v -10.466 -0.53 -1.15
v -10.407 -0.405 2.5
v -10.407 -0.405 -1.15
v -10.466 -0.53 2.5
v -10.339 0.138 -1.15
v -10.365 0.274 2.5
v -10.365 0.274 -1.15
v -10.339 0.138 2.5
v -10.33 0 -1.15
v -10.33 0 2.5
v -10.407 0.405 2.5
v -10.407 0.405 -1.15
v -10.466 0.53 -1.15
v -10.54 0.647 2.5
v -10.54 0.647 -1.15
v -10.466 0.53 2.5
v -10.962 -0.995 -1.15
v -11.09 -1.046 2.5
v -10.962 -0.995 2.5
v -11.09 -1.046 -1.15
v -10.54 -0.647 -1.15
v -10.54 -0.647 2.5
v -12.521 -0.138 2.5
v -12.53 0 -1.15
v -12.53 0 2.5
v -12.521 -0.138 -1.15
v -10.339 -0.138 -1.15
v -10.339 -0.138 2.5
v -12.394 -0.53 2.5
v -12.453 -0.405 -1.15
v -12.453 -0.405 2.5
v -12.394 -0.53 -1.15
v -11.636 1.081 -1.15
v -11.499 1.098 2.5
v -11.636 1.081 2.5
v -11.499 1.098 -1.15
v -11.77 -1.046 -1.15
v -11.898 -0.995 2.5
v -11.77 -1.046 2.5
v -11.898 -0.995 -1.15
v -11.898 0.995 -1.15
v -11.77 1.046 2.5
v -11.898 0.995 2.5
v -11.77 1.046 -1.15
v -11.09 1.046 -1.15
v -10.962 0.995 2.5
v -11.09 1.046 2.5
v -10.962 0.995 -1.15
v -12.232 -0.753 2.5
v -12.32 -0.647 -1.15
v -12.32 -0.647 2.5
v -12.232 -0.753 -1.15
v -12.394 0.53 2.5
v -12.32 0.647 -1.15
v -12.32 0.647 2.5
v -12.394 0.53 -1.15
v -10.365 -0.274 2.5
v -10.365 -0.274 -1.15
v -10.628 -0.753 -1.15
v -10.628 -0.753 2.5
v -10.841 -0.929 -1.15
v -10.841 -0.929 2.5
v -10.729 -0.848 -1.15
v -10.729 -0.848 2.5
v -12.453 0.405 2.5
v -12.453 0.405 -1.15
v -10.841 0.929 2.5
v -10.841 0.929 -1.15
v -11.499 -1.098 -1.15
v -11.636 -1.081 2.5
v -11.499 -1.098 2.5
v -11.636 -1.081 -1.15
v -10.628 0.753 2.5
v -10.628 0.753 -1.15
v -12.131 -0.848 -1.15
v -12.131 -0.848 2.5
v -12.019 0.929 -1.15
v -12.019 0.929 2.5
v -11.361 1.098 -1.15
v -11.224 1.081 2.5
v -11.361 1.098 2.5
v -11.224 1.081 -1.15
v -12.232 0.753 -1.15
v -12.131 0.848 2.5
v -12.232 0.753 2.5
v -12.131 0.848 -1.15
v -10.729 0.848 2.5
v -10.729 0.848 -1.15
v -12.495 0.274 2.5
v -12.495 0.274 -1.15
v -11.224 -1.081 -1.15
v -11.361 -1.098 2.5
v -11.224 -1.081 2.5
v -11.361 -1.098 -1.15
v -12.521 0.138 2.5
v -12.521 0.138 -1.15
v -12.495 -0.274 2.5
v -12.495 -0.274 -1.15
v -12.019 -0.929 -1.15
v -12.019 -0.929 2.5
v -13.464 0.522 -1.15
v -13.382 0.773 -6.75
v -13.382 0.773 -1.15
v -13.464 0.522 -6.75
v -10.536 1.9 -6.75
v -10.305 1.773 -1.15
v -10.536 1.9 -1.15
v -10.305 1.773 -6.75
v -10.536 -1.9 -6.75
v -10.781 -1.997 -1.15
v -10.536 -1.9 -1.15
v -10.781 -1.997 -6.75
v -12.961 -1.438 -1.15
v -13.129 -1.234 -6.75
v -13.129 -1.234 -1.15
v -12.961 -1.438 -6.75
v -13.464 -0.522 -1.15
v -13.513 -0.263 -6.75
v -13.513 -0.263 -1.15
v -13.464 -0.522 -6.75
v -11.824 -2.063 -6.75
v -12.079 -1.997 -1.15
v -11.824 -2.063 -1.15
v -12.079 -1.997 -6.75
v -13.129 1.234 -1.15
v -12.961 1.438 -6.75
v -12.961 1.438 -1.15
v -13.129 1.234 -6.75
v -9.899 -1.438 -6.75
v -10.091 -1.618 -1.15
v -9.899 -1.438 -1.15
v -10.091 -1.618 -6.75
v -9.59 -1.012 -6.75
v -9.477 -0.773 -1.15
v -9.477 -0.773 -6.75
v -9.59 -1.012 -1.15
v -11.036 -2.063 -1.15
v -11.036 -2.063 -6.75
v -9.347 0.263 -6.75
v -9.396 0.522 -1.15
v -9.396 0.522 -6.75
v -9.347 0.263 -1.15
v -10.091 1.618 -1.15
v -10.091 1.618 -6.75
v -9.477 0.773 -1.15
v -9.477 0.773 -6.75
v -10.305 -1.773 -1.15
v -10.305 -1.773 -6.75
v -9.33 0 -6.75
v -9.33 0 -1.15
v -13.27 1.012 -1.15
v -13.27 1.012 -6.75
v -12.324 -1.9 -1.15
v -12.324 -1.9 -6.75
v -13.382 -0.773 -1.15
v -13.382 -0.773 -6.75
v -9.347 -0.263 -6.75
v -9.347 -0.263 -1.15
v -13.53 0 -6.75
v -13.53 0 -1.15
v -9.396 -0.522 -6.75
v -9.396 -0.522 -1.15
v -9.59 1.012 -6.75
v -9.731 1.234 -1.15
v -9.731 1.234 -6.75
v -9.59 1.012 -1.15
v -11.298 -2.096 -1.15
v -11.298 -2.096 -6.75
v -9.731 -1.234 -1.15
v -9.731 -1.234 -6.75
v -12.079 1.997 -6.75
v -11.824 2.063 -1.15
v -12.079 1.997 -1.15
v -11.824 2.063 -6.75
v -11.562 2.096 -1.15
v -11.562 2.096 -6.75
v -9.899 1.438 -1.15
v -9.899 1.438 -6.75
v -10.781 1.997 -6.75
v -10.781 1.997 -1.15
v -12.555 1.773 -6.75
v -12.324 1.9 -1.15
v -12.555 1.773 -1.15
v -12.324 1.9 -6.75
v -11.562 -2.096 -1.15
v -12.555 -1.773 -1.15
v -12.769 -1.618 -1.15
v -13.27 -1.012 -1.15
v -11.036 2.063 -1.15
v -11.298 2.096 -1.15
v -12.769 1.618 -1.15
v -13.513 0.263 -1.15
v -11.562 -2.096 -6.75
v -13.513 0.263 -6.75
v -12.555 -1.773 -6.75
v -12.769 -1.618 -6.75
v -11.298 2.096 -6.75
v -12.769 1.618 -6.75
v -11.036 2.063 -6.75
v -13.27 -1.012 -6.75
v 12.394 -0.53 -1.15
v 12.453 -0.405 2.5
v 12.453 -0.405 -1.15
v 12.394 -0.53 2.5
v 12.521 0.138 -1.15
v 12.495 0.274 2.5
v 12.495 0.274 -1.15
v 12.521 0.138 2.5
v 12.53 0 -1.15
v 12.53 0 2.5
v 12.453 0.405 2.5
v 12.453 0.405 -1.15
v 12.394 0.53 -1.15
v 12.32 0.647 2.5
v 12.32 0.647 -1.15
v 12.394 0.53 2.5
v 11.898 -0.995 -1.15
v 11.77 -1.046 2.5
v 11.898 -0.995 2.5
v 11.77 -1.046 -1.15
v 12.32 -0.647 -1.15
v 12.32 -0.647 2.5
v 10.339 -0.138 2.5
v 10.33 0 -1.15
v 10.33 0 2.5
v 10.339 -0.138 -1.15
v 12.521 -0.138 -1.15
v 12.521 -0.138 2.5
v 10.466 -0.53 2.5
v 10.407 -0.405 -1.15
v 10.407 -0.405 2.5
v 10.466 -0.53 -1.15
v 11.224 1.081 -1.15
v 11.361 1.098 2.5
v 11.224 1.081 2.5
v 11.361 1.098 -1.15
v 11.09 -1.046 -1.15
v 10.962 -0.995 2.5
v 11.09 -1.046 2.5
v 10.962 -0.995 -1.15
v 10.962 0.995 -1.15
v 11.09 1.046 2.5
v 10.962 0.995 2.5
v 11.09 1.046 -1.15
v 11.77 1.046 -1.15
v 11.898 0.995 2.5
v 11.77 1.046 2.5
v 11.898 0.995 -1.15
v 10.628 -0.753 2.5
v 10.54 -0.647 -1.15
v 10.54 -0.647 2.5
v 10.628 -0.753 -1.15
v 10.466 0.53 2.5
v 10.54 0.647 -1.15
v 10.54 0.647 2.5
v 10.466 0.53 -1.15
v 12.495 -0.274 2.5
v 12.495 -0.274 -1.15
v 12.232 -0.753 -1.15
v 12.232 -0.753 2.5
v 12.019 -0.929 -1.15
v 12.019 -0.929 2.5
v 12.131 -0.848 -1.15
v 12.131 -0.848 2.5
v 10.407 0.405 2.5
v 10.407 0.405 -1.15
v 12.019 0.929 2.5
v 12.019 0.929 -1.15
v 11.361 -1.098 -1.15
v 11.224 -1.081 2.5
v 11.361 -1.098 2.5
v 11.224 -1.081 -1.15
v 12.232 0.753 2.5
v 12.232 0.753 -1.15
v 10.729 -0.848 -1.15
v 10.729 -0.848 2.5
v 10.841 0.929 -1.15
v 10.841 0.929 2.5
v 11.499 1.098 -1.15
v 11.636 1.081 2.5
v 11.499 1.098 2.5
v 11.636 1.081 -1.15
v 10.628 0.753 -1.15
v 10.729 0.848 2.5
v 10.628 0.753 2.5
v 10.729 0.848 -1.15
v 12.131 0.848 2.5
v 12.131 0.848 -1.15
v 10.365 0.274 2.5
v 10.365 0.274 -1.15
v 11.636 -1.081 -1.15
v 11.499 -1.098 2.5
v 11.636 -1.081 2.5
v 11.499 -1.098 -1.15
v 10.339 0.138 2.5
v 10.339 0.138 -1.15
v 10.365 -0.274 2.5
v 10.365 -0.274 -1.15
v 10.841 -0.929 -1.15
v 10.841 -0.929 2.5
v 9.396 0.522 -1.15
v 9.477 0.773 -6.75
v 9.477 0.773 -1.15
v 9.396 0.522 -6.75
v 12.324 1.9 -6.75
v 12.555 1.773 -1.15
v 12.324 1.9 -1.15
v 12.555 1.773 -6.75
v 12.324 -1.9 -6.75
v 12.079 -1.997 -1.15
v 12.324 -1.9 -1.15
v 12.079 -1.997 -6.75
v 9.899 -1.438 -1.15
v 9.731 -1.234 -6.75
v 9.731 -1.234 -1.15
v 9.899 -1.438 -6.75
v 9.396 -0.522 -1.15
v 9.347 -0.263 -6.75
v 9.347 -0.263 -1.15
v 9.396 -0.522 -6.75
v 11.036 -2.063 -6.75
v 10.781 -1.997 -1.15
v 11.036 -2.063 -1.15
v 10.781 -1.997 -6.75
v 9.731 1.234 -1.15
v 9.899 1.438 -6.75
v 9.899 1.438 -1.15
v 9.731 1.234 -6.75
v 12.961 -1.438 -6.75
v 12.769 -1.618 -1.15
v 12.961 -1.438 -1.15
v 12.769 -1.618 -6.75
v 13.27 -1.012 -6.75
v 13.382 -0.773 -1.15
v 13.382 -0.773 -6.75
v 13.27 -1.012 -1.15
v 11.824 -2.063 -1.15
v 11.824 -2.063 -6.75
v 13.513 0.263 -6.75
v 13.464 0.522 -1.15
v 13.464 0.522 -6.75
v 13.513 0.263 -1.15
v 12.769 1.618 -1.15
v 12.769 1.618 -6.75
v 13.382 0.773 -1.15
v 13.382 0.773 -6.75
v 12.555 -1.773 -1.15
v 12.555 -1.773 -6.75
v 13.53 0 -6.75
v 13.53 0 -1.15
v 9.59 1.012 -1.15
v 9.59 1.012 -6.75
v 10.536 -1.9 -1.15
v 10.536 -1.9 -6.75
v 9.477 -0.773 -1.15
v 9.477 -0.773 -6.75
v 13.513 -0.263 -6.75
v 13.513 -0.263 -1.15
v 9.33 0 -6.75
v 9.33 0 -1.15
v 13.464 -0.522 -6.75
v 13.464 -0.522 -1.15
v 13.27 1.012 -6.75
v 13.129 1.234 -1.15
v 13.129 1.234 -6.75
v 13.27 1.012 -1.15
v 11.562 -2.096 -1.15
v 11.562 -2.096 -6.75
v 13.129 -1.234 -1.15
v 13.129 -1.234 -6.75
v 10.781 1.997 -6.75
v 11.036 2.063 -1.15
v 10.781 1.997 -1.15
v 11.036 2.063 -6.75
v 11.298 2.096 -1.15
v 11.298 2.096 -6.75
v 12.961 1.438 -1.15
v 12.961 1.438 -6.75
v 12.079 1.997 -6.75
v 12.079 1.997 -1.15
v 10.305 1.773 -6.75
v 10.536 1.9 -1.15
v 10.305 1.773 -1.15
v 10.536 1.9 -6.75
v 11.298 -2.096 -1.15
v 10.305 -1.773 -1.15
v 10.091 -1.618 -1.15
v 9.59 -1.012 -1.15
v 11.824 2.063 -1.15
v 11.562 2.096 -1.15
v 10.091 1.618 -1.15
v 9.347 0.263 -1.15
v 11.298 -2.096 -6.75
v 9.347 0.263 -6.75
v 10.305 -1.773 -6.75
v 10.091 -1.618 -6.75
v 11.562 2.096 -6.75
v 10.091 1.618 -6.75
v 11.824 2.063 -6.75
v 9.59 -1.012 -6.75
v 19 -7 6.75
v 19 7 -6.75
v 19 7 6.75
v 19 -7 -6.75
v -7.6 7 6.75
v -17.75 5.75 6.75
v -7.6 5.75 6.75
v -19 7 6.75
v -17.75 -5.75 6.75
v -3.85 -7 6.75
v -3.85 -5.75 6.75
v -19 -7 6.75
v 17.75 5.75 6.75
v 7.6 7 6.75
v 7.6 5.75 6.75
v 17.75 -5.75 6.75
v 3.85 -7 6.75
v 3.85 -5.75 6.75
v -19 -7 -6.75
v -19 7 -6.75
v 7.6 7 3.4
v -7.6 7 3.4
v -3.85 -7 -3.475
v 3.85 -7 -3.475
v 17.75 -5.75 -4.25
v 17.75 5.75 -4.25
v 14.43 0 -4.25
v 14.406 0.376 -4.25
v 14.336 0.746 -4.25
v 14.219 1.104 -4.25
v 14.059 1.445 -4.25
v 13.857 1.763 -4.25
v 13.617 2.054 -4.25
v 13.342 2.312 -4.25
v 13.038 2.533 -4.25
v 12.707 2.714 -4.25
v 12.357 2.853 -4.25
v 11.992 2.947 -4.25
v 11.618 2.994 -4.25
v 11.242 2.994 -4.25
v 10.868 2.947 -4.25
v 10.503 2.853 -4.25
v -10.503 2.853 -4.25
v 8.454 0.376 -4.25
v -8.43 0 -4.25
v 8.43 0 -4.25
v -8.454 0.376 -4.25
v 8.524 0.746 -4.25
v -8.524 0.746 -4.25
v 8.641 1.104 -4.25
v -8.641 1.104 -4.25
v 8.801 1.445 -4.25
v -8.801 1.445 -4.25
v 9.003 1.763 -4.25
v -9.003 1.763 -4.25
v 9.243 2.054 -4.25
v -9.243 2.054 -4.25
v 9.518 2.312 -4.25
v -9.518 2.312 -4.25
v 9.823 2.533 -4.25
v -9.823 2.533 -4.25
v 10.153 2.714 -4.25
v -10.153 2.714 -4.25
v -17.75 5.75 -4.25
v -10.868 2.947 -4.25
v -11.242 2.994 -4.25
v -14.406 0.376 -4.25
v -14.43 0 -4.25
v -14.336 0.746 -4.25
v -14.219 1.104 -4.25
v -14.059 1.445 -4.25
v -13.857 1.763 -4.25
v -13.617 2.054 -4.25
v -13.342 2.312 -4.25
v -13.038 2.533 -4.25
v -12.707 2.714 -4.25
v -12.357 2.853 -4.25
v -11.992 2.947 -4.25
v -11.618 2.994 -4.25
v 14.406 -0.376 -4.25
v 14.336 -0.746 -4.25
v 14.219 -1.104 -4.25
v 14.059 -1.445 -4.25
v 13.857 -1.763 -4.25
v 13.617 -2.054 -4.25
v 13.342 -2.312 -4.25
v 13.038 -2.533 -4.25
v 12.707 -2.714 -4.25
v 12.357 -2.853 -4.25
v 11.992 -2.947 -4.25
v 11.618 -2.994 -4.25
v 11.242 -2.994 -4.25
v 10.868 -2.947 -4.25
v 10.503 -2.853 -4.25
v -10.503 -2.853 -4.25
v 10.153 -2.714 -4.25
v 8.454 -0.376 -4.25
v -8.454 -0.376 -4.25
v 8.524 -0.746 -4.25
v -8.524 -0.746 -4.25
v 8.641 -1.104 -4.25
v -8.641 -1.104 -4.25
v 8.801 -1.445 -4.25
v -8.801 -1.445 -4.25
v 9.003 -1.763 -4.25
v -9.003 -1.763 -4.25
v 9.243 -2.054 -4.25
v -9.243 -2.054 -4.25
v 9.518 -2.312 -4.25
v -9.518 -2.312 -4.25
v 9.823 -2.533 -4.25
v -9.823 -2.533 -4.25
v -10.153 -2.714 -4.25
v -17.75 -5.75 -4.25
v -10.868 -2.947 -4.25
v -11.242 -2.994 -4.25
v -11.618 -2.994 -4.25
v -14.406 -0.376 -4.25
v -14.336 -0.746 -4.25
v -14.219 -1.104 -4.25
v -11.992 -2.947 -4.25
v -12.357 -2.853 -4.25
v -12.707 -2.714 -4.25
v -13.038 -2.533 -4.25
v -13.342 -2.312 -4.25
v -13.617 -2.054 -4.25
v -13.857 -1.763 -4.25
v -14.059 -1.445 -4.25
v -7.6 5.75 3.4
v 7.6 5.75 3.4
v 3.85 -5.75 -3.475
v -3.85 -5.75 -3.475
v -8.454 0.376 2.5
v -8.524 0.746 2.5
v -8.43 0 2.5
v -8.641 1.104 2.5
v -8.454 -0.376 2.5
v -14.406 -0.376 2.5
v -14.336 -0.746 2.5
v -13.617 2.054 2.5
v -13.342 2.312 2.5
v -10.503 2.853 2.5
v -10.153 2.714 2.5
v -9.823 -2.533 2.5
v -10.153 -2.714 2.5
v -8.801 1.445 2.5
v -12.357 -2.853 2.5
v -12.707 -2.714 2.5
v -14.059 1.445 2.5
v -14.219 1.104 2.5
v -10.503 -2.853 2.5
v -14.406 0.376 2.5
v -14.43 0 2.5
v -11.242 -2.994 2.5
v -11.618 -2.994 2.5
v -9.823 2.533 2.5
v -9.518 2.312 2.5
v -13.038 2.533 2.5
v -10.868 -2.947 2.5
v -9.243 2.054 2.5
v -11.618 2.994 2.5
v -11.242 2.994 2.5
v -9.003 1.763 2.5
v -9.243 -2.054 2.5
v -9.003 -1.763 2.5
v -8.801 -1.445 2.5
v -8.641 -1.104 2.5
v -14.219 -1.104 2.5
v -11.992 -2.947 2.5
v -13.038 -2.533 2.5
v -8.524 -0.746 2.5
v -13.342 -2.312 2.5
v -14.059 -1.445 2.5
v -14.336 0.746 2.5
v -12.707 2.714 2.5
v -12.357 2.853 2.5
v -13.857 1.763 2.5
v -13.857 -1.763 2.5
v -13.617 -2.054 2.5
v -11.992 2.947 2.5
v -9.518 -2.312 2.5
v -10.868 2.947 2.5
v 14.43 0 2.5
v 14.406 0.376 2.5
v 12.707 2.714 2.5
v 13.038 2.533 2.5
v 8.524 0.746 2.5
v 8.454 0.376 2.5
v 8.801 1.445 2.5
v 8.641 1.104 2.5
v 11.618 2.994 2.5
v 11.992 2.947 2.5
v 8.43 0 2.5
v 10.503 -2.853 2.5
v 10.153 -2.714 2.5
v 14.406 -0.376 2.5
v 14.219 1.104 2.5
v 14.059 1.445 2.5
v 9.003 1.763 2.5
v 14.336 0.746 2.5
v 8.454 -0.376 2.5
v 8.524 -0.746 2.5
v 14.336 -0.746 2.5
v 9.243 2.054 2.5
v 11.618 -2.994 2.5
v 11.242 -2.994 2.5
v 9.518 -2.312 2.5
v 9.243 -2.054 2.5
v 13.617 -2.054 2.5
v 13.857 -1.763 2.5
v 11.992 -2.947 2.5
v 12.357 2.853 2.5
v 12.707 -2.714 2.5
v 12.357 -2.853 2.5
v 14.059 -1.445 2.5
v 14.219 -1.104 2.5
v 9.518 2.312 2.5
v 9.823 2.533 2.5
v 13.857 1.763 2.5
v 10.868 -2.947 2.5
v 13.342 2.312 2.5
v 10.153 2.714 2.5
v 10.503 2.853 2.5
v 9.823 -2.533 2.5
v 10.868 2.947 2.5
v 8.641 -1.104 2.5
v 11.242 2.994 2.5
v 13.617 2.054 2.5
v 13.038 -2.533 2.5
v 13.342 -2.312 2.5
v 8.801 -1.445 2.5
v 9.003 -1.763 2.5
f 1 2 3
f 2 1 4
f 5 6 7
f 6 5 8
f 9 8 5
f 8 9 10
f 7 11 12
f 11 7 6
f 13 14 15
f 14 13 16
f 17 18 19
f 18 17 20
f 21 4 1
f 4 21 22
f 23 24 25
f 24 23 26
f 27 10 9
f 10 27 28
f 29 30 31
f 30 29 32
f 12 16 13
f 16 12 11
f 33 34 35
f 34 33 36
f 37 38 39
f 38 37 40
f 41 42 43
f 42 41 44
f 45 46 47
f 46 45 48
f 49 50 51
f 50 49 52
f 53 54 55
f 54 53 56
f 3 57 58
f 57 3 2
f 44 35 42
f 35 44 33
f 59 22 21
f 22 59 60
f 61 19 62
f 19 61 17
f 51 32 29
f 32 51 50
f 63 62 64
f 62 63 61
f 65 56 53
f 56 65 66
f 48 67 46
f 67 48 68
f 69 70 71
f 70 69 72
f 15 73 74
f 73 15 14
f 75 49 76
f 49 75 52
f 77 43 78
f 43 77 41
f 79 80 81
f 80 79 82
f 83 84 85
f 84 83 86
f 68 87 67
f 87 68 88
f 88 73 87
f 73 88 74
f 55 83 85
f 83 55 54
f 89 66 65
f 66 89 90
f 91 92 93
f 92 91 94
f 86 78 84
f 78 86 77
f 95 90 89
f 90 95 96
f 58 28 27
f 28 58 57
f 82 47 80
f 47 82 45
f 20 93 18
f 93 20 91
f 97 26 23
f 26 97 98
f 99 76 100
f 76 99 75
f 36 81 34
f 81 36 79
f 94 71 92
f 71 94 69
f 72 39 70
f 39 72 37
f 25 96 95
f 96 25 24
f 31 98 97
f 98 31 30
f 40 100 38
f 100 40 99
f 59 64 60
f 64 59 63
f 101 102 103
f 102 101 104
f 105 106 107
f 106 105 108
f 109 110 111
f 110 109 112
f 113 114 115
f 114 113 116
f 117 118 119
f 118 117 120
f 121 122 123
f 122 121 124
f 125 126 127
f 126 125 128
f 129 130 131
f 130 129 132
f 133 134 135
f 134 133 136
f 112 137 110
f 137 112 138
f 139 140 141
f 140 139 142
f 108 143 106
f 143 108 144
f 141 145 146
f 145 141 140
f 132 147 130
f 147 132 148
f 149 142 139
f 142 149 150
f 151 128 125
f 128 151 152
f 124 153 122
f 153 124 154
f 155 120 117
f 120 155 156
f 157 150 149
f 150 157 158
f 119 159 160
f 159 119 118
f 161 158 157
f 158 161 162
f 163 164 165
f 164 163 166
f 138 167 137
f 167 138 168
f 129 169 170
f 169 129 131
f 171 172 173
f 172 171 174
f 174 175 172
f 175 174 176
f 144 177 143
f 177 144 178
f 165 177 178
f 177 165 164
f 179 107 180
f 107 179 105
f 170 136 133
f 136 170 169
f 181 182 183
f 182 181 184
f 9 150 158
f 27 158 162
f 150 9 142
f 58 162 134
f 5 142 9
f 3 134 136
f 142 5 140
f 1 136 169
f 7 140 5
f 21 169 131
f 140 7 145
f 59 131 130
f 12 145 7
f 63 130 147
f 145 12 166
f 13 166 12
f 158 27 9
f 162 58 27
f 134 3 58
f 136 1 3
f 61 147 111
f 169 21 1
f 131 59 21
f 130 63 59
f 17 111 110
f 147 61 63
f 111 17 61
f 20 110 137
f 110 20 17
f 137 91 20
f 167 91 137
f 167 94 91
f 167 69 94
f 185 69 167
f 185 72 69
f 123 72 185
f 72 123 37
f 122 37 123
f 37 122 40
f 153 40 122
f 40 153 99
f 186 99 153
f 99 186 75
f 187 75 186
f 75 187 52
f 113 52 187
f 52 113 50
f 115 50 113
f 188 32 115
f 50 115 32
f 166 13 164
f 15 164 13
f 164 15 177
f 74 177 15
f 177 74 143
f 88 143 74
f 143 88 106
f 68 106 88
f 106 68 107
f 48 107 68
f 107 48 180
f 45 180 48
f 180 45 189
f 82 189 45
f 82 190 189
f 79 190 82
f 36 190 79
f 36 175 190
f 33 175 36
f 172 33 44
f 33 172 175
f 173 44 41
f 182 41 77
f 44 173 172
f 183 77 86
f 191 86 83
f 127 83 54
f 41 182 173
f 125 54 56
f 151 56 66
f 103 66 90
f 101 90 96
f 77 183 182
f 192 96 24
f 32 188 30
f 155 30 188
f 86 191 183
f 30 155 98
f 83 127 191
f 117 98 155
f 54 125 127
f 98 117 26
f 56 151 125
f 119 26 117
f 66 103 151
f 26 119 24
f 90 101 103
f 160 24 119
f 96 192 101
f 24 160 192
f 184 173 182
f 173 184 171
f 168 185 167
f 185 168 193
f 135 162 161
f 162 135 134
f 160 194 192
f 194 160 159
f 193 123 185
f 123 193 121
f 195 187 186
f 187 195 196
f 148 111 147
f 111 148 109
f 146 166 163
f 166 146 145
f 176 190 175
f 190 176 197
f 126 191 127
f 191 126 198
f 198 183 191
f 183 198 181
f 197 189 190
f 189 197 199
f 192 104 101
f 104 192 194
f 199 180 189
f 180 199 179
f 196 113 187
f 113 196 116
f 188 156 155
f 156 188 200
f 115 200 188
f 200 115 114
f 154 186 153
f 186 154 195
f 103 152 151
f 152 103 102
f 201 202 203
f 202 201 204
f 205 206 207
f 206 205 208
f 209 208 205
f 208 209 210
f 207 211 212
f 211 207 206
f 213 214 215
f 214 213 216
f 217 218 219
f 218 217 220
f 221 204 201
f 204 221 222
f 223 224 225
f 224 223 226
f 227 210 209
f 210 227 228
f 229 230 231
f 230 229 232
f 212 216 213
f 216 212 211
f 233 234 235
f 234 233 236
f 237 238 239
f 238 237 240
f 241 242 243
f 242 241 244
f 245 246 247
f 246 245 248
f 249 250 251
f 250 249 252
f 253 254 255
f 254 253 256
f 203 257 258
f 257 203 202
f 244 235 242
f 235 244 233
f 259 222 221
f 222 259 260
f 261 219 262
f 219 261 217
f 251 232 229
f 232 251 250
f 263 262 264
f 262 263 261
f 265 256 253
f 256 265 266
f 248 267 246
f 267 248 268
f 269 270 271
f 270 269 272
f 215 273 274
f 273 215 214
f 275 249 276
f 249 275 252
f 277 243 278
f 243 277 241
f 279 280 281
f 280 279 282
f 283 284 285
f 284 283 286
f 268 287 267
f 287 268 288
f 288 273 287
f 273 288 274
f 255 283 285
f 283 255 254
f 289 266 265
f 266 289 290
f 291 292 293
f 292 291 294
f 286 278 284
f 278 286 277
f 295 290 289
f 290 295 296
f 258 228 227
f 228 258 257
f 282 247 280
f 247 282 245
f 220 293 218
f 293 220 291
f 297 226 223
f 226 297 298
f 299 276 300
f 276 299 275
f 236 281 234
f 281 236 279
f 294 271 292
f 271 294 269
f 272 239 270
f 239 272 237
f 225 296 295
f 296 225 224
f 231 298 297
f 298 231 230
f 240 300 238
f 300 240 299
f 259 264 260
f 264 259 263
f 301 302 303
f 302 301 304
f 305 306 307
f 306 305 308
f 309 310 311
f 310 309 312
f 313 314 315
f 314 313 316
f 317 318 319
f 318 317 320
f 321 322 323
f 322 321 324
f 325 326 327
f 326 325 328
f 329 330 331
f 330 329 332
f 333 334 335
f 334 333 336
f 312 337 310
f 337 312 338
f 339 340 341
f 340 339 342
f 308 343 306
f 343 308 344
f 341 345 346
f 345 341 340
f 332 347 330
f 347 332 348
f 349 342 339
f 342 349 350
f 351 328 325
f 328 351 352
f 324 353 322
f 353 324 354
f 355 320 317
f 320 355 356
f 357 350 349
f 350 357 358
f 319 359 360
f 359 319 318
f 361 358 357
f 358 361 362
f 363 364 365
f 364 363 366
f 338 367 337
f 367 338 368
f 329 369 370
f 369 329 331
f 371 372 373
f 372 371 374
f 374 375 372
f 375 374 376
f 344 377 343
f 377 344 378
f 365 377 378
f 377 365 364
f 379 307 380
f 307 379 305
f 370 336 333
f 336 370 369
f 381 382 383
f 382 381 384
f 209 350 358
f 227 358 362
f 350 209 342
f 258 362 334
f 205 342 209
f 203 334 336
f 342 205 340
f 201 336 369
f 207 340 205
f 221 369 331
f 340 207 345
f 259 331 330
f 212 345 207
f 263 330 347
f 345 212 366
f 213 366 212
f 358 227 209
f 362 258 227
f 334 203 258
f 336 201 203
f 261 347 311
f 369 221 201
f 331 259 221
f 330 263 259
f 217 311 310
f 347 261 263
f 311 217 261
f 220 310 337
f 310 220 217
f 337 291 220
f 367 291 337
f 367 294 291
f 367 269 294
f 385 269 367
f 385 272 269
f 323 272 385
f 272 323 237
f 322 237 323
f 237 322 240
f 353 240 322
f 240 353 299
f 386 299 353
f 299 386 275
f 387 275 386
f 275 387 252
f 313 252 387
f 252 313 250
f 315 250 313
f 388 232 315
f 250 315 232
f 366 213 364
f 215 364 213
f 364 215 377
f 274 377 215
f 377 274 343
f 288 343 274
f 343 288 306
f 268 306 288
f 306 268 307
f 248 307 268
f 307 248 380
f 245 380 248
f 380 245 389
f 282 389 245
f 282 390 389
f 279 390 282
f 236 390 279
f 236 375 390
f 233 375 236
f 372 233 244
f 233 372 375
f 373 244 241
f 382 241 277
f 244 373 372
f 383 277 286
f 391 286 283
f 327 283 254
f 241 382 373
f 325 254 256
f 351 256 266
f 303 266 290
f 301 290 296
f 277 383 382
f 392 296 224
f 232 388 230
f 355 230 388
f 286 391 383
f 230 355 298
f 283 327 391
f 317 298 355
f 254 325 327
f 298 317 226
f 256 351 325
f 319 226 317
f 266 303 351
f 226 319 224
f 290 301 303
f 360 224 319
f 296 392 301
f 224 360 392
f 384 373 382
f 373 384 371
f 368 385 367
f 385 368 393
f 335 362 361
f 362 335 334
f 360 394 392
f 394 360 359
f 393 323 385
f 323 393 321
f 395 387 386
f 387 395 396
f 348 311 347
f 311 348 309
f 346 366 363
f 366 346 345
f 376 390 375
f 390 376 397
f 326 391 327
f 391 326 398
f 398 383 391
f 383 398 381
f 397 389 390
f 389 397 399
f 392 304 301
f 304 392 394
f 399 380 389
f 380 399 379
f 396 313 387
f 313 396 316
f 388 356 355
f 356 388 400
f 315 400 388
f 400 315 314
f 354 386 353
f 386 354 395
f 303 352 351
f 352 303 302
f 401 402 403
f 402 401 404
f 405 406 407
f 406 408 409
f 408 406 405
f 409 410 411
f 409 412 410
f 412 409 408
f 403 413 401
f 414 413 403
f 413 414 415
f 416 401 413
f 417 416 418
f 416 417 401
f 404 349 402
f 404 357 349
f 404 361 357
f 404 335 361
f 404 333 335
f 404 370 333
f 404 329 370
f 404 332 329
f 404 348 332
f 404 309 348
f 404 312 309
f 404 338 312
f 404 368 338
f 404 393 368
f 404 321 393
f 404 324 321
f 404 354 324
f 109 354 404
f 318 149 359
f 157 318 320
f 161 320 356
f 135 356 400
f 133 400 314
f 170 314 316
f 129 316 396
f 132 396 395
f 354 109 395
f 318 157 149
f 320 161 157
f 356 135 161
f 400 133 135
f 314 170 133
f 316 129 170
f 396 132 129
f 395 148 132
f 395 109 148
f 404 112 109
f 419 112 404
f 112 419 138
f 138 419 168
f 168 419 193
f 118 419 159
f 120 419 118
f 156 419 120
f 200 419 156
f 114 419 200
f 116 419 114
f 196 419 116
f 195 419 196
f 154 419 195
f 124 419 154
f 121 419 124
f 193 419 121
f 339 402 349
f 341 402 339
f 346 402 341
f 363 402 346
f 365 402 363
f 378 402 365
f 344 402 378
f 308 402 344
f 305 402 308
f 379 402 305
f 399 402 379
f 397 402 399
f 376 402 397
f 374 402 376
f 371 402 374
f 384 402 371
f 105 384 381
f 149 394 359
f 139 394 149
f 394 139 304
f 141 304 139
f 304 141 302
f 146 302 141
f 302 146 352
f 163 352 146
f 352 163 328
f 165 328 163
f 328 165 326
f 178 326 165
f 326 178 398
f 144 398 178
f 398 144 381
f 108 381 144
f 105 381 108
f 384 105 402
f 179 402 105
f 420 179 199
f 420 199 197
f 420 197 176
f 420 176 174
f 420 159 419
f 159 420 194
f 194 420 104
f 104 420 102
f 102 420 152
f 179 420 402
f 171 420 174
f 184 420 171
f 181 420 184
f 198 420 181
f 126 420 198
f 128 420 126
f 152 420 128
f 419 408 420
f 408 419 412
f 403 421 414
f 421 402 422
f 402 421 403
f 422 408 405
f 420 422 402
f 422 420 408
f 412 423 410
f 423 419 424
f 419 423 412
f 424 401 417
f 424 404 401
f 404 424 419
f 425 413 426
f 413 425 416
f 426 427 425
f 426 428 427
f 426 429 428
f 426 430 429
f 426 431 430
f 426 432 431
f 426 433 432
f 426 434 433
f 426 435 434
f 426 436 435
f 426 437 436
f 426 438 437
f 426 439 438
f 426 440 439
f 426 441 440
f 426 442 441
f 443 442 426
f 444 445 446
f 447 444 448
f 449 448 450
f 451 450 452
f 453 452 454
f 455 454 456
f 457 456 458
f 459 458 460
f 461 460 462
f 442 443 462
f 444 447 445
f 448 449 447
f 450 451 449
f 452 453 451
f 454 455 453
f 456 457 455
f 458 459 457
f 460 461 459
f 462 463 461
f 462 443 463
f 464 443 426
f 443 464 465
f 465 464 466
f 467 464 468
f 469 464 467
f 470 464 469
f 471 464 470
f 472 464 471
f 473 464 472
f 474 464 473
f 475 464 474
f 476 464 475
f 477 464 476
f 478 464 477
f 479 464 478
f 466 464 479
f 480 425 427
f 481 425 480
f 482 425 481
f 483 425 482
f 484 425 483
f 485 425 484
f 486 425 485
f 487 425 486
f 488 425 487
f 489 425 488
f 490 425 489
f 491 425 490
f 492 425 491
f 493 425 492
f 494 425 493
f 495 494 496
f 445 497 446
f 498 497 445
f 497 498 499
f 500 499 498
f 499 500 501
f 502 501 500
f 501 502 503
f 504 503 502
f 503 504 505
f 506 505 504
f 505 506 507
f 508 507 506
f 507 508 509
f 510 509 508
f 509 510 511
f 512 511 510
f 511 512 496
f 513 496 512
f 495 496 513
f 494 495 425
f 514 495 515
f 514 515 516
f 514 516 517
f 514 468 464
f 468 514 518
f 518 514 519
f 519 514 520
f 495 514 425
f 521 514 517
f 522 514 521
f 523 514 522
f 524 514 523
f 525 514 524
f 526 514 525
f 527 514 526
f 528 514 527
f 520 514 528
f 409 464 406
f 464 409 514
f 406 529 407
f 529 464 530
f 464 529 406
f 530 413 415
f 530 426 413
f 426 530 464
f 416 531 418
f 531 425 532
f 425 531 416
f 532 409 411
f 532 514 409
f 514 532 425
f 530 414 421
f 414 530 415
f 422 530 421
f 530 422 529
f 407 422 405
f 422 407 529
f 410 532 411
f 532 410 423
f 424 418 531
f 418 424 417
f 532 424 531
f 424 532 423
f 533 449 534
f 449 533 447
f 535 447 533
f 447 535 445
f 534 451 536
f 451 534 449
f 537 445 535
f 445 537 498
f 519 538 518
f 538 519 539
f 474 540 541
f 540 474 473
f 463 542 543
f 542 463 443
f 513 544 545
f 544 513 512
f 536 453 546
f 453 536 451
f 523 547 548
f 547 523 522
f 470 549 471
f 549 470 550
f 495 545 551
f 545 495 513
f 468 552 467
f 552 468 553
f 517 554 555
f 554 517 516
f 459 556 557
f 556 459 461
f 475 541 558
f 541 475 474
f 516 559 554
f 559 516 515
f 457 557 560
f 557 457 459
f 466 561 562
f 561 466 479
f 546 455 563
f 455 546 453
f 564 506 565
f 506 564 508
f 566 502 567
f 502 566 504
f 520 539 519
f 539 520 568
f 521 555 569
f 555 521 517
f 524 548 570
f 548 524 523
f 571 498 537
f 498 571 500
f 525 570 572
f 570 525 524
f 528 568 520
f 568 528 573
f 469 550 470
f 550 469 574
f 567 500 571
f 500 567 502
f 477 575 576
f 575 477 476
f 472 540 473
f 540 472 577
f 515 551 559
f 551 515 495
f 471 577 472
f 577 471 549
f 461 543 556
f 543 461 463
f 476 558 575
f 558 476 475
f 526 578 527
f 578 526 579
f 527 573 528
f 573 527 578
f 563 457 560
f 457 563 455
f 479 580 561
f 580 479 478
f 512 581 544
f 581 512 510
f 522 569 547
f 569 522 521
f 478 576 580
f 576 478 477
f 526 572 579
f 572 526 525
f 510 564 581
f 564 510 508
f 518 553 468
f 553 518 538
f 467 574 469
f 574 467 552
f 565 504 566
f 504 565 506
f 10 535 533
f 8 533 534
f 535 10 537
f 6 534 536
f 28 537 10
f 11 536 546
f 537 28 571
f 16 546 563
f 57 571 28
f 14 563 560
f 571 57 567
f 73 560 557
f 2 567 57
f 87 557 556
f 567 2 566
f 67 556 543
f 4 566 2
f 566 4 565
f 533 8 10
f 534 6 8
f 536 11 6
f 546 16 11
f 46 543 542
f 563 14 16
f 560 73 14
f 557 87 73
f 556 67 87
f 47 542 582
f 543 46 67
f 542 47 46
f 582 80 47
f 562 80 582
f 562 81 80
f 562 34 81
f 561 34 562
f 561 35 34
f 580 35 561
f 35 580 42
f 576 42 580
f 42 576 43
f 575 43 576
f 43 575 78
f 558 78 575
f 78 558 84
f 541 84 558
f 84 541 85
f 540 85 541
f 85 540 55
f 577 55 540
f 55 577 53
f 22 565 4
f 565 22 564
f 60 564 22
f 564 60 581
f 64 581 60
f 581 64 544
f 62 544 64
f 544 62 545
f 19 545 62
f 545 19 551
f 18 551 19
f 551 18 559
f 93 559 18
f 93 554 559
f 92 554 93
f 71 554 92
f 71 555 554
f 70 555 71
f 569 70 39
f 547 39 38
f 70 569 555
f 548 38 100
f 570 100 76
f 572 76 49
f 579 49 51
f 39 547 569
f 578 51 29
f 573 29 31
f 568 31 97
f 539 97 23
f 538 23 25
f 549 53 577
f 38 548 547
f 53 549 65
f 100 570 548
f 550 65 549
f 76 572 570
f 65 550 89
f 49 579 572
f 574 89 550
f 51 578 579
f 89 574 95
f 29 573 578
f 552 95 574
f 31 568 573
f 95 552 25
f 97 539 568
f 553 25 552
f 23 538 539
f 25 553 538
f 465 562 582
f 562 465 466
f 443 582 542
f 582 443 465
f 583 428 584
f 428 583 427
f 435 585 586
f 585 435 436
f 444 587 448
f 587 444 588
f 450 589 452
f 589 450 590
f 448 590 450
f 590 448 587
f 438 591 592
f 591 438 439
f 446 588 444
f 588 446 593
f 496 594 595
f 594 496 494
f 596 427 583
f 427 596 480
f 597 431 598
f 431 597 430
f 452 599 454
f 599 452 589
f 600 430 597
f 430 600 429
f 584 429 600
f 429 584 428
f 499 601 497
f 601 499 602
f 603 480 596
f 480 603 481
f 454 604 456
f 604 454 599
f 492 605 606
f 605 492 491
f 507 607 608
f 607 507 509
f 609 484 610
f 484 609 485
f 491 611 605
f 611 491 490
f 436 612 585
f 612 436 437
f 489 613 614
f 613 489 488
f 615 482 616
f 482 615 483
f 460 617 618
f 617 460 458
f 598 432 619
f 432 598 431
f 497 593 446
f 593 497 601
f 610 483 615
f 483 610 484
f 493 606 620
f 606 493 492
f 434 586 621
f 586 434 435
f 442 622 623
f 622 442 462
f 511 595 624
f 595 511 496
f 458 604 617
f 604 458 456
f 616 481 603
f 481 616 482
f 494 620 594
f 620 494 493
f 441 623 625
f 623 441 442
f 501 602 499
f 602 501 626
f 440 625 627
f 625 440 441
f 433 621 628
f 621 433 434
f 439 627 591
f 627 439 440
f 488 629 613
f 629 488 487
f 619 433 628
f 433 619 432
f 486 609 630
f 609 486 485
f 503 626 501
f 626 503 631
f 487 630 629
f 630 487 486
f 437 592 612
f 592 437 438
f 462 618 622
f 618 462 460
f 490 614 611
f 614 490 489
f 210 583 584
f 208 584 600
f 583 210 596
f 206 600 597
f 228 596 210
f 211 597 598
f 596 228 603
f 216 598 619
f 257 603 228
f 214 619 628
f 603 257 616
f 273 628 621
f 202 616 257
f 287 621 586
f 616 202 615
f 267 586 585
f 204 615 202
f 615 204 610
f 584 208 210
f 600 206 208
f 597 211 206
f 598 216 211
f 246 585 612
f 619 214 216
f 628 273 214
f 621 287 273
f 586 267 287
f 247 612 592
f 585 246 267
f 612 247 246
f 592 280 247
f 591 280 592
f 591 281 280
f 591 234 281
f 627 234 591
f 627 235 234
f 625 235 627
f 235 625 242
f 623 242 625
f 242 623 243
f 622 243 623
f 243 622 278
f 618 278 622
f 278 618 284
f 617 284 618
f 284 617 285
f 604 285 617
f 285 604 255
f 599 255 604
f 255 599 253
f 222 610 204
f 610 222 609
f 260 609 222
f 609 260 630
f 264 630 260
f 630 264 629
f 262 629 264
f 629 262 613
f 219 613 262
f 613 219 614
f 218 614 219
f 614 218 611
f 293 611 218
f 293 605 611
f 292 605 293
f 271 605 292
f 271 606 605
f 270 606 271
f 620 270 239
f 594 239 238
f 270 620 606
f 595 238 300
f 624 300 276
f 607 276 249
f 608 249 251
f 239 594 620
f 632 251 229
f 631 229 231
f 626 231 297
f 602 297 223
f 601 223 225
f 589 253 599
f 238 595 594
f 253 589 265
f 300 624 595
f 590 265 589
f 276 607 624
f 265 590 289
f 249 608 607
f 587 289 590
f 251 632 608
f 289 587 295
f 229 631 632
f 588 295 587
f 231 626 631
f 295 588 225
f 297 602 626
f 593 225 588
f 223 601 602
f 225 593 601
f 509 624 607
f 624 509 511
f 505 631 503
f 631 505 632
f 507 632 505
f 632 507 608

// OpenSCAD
// file: ../lib/nuts_and_screws.scad
//
// This file is part of the hexapod-robi distribution (https://github.com/schwicke/hexapod-robi).
// Copyright (c) 2021 Ulrich Schwickerath
//
// This program is free software: you can redistribute it and/or modify
// it under the terms of the GNU General Public License as published by
// the Free Software Foundation, version 3.
//
// This program is distributed in the hope that it will be useful, but
// WITHOUT ANY WARRANTY; without even the implied warranty of
// MERCHANTABILITY or FITNESS FOR A PARTICULAR PURPOSE. See the GNU
// General Public License for more details.
//
// You should have received a copy of the GNU General Public License
// along with this program. If not, see <http://www.gnu.org/licenses/>.
//
// This is a little plastic bit which is intended to get the holes for the connectors
// at the right position. It's not part of the robot itself, but useful for building it.
//
// m3s nuts dimensions
m3s_screwdim = 3; // m3 screws
m3s_delta = 0.2;
m3s_nut_width = 5.4+m3s_delta;
m3s_nut_hight = 2.4+m3s_delta;

module screwhole_mX_basic(d, height, fact){
     headlength = 0.6*d/2+0.1;
     translate([0, 0, headlength/2]){
          translate([0, 0, height/2])cylinder(h=height, r=d/2+0.1, center=true, $fn=50);
          cylinder(h=10*fact*headlength, r=d+0.1, center=true, $fn=50);
     }
}

module screwhole_mX(d, height, fact){
     headlength = 0.6*d/2+0.1;
     translate([0, 2, 0]){
          rotate([90, 0, 0]){
               translate([0, 0, headlength/2]){
                    translate([0, 0, height/2])cylinder(h=height, r=d/2+0.1, center=true, $fn=50);
                    cylinder(h=10*fact*headlength, r=d+0.1, center=true, $fn=50);
               }
          }
     }
}

module nuthole_mX(d){
     s = (d==2) ? 4: (d==2.5)? 5: (d==3) ? 5.5: 0.0;
     if (s==0){
          echo ("Nut size not supported");
     }
     e = s/sin(60.0);
     height = 40;
     headlength = 0.6*d/2+0.1;
     translate([0, 0, -5*headlength]){
          translate([0, 0, height/2])cylinder(h=height, r=d/2+0.1, center=true, $fn=50);
          cylinder(h=10*headlength, d=e+0.1, center=true, $fn=6);
     }
}

module my_screwhole_mX(d){
     translate([0, 0, thickness])rotate([180, 0, 0])screwhole_mX_basic(d, 40, 1);
}
// file: ../lib/globals.scad
//
// This file is part of the hexapod-robi distribution (https://github.com/schwicke/hexapod-robi).
// Copyright (c) 2021 Ulrich Schwickerath
//
// This program is free software: you can redistribute it and/or modify
// it under the terms of the GNU General Public License as published by
// the Free Software Foundation, version 3.
//
// This program is distributed in the hope that it will be useful, but
// WITHOUT ANY WARRANTY; without even the implied warranty of
// MERCHANTABILITY or FITNESS FOR A PARTICULAR PURPOSE. See the GNU
// General Public License for more details.
//
// You should have received a copy of the GNU General Public License
// along with this program. If not, see <http://www.gnu.org/licenses/>.
//
// This is a little plastic bit which is intended to get the holes for the connectors
// at the right position. It's not part of the robot itself, but useful for building it.
//
//
// all distances are in mm
//

// Define some globals used at various places
raster=2.54;

// motor height
space = 42.0;

// wall thickness
thickness = 4;

// battery box
batt_thickness = 3;
batt_x = 50;
batt_y = 160;
batt_z = 25;

// binder distance
binder_dist = 3.5;

// mount position base
base_mount_pos_x = batt_x/2+2*batt_thickness+1.5;

// dimensions for hubs for motor cabling
hub_hole_diameter = 2;
hub_spacer_height = 2;
hub_x = 4.9;
hub_y = 9.9;

module anchorbox(size){
     cube([40, 30, size],center=true);
}
// main file
//
// This file is part of the hexapod-robi distribution (https://github.com/schwicke/hexapod-robi).
// Copyright (c) 2021 Ulrich Schwickerath
//
// This program is free software: you can redistribute it and/or modify
// it under the terms of the GNU General Public License as published by
// the Free Software Foundation, version 3.
//
// This program is distributed in the hope that it will be useful, but
// WITHOUT ANY WARRANTY; without even the implied warranty of
// MERCHANTABILITY or FITNESS FOR A PARTICULAR PURPOSE. See the GNU
// General Public License for more details.
//
// You should have received a copy of the GNU General Public License
// along with this program. If not, see <http://www.gnu.org/licenses/>.
//
// This is a little plastic bit which is intended to get the holes for the connectors
// at the right position. It's not part of the robot itself, but useful for building it.
//
include <../lib/globals.scad>;
include <../lib/nuts_and_screws.scad>;
//
hub_hole_diameter = 2;
hub_spacer_height = 2;

hub_y = 5.75+0.2;
hub_x = 7.4+0.2;
dist = 4.5*raster;

module connector_hub(){
  translate([-dist, 0, -5])screwhole_mX_basic(hub_hole_diameter, 10.0, 1.0);
  translate([+dist, 0, -5])screwhole_mX_basic(hub_hole_diameter, 10.0, 1.0);
}

module box(dist){
     length=38;
     width=14;
     height=13.5;
     thickness=2.5;
     difference(){
          cube([length, width, height], center=true);
          //carve out to create a box
          translate([0, 0, 2.5])cube([length-thickness, width-thickness, height], center=true);
          //carve out for the sensor
          translate([0, hub_y, 5.4])cube([2*hub_x, 2*hub_y+0.1, 4], center=true);
          // connector hole
          translate([0, -10, 2.0])rotate([90, 0, 0])cube([hub_x+0.1, hub_y+5, 20], center=true);
     }
     translate([-dist, 0, -1.5])cylinder(h=8, r=3, center=true, $fn=50);
     translate([+dist, 0, -1.5])cylinder(h=8, r=3, center=true, $fn=50);
}

difference(){
     box(dist);
     connector_hub();
}
